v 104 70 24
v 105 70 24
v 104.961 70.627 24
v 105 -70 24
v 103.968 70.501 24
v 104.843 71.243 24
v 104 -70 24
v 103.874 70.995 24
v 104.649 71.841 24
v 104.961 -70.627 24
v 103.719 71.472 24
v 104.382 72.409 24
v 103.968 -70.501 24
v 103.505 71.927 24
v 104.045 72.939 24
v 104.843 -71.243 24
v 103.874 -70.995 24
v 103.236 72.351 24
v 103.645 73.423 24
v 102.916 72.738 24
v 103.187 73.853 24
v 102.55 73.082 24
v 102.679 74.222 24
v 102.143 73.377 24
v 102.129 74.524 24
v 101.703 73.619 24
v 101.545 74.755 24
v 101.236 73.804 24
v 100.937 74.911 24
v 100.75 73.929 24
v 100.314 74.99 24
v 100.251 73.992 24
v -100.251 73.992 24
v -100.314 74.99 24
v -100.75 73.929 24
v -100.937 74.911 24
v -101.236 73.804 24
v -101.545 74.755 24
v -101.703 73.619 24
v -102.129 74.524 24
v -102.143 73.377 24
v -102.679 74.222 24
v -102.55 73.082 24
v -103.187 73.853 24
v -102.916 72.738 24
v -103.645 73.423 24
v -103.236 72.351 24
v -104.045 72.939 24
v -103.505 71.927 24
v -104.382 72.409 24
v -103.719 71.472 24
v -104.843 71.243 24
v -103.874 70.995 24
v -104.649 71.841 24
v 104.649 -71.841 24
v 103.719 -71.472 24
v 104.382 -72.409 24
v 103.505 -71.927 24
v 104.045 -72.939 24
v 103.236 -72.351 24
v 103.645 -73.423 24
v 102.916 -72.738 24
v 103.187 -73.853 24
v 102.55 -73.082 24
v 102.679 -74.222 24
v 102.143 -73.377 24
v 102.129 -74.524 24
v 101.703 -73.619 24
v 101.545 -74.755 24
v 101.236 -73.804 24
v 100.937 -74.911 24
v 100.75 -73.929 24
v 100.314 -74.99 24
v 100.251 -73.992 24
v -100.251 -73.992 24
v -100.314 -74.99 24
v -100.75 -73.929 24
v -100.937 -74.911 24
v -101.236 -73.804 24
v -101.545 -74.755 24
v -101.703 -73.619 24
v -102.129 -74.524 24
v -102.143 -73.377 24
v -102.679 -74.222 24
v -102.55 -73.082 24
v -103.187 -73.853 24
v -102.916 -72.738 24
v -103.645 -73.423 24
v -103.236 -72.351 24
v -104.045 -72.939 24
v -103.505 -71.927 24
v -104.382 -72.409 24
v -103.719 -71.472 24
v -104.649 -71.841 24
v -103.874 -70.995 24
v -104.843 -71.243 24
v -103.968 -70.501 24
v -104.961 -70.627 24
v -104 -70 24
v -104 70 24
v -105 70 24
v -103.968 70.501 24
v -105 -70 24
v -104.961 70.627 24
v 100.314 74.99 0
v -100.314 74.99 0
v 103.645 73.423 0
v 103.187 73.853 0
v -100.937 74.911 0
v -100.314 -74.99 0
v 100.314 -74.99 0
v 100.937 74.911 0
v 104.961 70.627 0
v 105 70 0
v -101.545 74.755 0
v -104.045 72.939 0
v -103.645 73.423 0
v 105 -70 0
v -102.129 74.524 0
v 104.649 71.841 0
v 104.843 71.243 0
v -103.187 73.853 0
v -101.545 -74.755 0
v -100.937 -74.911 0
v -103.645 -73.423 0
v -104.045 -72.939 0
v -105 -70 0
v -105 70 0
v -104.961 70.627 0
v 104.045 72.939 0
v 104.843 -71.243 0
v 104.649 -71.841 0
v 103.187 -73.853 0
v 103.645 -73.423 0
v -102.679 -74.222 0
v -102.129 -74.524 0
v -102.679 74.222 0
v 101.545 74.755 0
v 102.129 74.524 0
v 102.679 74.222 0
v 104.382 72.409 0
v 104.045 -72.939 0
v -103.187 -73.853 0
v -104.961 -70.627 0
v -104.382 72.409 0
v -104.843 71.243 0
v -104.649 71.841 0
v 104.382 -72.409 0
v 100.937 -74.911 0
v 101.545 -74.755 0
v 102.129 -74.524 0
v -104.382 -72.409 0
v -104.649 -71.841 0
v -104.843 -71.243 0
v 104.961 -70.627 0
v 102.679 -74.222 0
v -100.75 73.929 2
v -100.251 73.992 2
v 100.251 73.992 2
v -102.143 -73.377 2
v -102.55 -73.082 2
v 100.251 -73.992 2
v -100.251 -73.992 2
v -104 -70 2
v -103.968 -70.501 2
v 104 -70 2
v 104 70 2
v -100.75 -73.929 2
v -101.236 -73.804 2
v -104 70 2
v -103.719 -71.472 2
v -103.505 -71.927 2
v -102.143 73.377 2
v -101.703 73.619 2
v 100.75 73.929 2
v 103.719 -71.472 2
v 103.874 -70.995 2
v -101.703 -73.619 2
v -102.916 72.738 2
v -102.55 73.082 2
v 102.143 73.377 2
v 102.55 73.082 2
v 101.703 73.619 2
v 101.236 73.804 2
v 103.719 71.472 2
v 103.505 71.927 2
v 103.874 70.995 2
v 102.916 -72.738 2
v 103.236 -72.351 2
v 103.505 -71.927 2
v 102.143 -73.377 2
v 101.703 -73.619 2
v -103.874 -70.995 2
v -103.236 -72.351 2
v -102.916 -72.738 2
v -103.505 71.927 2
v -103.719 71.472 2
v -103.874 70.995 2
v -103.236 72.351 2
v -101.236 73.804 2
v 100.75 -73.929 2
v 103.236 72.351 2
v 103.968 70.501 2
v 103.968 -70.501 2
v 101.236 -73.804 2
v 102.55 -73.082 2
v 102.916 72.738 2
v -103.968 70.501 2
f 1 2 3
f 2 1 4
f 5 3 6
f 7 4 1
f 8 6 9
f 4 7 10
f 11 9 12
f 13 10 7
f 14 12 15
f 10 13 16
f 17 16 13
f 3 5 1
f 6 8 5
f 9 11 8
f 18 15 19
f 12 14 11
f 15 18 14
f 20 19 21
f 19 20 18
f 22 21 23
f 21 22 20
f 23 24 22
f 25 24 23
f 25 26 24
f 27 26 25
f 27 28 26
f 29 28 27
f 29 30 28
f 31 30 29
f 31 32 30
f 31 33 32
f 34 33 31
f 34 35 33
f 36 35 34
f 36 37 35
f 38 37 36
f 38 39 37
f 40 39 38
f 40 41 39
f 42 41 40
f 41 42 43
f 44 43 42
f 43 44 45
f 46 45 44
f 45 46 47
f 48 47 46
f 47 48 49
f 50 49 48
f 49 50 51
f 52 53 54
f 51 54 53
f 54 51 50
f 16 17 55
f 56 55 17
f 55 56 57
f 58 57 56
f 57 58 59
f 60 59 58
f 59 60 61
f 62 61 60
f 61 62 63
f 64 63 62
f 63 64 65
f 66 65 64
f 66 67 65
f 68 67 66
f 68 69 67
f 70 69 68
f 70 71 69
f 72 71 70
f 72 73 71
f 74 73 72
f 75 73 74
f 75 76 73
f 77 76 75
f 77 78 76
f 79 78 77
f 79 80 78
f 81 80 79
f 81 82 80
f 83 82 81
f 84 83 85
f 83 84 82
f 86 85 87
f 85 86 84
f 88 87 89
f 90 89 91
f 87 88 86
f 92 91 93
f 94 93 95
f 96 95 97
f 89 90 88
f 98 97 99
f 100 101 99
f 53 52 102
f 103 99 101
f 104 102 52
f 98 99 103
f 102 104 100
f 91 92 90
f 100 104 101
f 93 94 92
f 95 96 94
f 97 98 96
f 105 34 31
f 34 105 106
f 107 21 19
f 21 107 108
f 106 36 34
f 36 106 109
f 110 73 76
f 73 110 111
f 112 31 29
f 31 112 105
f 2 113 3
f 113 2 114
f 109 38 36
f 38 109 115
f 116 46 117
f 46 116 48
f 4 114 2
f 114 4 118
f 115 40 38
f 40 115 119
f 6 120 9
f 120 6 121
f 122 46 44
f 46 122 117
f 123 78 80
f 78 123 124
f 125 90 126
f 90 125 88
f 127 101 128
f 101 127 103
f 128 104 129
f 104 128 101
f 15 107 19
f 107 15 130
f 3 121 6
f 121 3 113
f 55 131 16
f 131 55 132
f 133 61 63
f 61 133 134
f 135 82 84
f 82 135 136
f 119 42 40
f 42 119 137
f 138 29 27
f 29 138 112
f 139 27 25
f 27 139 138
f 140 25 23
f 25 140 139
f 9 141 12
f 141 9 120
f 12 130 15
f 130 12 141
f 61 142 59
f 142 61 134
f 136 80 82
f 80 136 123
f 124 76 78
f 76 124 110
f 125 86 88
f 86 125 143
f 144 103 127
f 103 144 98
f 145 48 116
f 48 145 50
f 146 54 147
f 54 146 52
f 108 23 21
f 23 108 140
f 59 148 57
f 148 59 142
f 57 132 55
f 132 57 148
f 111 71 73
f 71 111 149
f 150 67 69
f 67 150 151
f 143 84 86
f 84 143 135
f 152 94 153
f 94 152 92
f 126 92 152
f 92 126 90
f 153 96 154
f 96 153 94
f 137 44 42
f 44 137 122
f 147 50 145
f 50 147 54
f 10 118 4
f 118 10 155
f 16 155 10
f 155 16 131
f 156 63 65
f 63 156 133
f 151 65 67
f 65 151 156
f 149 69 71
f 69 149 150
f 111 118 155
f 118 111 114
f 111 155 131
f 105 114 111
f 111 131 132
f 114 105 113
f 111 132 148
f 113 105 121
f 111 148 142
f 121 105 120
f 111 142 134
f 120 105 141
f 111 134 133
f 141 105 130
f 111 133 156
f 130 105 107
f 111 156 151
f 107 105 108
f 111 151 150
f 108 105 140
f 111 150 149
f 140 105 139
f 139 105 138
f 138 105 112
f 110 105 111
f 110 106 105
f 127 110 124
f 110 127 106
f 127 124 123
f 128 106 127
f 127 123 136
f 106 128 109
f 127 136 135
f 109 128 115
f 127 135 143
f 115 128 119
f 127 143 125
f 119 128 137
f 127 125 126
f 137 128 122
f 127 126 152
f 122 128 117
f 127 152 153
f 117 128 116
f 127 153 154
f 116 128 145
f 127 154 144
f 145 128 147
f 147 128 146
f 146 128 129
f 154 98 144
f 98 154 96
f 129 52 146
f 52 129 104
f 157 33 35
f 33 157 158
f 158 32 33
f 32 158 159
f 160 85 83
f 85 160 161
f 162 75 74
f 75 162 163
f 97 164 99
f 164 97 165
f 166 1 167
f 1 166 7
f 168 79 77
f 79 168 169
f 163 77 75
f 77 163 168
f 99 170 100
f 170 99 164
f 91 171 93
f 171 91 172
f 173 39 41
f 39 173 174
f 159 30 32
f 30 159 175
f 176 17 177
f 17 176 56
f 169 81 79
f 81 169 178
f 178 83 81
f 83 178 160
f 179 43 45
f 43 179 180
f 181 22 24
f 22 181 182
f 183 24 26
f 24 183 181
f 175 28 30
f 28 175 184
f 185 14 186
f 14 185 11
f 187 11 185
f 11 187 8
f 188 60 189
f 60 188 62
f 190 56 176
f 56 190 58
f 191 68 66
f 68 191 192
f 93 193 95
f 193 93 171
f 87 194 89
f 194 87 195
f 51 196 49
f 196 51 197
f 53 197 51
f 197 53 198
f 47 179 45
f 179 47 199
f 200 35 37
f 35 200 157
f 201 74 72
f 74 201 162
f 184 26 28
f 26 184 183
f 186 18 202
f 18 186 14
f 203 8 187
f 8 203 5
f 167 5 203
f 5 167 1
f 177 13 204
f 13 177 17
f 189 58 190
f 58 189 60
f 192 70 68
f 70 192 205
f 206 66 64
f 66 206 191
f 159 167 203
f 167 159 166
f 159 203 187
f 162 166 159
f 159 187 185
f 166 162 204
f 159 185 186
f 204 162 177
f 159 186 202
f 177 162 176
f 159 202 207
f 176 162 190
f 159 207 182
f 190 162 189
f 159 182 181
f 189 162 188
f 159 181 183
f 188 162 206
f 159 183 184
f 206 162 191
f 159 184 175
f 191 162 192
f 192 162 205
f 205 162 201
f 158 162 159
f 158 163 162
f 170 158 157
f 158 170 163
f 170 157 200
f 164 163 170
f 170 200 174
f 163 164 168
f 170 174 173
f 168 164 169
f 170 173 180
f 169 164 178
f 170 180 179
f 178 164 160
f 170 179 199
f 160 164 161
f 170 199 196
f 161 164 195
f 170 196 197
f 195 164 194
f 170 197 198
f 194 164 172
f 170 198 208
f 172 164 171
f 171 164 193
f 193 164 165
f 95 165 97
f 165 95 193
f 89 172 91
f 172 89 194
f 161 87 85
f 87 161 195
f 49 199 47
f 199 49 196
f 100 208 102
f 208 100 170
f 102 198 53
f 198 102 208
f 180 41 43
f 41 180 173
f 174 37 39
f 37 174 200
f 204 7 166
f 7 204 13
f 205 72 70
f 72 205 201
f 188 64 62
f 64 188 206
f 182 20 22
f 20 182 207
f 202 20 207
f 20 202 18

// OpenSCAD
$fn = 50;


difference() {
	union() {
		hull() {
			translate(v = [-100.0000000000, 70.0000000000, 0]) {
				cylinder(h = 24, r = 5);
			}
			translate(v = [100.0000000000, 70.0000000000, 0]) {
				cylinder(h = 24, r = 5);
			}
			translate(v = [-100.0000000000, -70.0000000000, 0]) {
				cylinder(h = 24, r = 5);
			}
			translate(v = [100.0000000000, -70.0000000000, 0]) {
				cylinder(h = 24, r = 5);
			}
		}
	}
	union() {
		translate(v = [0, 0, 2]) {
			hull() {
				translate(v = [-100.0000000000, 70.0000000000, 0]) {
					cylinder(h = 22, r = 4);
				}
				translate(v = [100.0000000000, 70.0000000000, 0]) {
					cylinder(h = 22, r = 4);
				}
				translate(v = [-100.0000000000, -70.0000000000, 0]) {
					cylinder(h = 22, r = 4);
				}
				translate(v = [100.0000000000, -70.0000000000, 0]) {
					cylinder(h = 22, r = 4);
				}
			}
		}
	}
}
